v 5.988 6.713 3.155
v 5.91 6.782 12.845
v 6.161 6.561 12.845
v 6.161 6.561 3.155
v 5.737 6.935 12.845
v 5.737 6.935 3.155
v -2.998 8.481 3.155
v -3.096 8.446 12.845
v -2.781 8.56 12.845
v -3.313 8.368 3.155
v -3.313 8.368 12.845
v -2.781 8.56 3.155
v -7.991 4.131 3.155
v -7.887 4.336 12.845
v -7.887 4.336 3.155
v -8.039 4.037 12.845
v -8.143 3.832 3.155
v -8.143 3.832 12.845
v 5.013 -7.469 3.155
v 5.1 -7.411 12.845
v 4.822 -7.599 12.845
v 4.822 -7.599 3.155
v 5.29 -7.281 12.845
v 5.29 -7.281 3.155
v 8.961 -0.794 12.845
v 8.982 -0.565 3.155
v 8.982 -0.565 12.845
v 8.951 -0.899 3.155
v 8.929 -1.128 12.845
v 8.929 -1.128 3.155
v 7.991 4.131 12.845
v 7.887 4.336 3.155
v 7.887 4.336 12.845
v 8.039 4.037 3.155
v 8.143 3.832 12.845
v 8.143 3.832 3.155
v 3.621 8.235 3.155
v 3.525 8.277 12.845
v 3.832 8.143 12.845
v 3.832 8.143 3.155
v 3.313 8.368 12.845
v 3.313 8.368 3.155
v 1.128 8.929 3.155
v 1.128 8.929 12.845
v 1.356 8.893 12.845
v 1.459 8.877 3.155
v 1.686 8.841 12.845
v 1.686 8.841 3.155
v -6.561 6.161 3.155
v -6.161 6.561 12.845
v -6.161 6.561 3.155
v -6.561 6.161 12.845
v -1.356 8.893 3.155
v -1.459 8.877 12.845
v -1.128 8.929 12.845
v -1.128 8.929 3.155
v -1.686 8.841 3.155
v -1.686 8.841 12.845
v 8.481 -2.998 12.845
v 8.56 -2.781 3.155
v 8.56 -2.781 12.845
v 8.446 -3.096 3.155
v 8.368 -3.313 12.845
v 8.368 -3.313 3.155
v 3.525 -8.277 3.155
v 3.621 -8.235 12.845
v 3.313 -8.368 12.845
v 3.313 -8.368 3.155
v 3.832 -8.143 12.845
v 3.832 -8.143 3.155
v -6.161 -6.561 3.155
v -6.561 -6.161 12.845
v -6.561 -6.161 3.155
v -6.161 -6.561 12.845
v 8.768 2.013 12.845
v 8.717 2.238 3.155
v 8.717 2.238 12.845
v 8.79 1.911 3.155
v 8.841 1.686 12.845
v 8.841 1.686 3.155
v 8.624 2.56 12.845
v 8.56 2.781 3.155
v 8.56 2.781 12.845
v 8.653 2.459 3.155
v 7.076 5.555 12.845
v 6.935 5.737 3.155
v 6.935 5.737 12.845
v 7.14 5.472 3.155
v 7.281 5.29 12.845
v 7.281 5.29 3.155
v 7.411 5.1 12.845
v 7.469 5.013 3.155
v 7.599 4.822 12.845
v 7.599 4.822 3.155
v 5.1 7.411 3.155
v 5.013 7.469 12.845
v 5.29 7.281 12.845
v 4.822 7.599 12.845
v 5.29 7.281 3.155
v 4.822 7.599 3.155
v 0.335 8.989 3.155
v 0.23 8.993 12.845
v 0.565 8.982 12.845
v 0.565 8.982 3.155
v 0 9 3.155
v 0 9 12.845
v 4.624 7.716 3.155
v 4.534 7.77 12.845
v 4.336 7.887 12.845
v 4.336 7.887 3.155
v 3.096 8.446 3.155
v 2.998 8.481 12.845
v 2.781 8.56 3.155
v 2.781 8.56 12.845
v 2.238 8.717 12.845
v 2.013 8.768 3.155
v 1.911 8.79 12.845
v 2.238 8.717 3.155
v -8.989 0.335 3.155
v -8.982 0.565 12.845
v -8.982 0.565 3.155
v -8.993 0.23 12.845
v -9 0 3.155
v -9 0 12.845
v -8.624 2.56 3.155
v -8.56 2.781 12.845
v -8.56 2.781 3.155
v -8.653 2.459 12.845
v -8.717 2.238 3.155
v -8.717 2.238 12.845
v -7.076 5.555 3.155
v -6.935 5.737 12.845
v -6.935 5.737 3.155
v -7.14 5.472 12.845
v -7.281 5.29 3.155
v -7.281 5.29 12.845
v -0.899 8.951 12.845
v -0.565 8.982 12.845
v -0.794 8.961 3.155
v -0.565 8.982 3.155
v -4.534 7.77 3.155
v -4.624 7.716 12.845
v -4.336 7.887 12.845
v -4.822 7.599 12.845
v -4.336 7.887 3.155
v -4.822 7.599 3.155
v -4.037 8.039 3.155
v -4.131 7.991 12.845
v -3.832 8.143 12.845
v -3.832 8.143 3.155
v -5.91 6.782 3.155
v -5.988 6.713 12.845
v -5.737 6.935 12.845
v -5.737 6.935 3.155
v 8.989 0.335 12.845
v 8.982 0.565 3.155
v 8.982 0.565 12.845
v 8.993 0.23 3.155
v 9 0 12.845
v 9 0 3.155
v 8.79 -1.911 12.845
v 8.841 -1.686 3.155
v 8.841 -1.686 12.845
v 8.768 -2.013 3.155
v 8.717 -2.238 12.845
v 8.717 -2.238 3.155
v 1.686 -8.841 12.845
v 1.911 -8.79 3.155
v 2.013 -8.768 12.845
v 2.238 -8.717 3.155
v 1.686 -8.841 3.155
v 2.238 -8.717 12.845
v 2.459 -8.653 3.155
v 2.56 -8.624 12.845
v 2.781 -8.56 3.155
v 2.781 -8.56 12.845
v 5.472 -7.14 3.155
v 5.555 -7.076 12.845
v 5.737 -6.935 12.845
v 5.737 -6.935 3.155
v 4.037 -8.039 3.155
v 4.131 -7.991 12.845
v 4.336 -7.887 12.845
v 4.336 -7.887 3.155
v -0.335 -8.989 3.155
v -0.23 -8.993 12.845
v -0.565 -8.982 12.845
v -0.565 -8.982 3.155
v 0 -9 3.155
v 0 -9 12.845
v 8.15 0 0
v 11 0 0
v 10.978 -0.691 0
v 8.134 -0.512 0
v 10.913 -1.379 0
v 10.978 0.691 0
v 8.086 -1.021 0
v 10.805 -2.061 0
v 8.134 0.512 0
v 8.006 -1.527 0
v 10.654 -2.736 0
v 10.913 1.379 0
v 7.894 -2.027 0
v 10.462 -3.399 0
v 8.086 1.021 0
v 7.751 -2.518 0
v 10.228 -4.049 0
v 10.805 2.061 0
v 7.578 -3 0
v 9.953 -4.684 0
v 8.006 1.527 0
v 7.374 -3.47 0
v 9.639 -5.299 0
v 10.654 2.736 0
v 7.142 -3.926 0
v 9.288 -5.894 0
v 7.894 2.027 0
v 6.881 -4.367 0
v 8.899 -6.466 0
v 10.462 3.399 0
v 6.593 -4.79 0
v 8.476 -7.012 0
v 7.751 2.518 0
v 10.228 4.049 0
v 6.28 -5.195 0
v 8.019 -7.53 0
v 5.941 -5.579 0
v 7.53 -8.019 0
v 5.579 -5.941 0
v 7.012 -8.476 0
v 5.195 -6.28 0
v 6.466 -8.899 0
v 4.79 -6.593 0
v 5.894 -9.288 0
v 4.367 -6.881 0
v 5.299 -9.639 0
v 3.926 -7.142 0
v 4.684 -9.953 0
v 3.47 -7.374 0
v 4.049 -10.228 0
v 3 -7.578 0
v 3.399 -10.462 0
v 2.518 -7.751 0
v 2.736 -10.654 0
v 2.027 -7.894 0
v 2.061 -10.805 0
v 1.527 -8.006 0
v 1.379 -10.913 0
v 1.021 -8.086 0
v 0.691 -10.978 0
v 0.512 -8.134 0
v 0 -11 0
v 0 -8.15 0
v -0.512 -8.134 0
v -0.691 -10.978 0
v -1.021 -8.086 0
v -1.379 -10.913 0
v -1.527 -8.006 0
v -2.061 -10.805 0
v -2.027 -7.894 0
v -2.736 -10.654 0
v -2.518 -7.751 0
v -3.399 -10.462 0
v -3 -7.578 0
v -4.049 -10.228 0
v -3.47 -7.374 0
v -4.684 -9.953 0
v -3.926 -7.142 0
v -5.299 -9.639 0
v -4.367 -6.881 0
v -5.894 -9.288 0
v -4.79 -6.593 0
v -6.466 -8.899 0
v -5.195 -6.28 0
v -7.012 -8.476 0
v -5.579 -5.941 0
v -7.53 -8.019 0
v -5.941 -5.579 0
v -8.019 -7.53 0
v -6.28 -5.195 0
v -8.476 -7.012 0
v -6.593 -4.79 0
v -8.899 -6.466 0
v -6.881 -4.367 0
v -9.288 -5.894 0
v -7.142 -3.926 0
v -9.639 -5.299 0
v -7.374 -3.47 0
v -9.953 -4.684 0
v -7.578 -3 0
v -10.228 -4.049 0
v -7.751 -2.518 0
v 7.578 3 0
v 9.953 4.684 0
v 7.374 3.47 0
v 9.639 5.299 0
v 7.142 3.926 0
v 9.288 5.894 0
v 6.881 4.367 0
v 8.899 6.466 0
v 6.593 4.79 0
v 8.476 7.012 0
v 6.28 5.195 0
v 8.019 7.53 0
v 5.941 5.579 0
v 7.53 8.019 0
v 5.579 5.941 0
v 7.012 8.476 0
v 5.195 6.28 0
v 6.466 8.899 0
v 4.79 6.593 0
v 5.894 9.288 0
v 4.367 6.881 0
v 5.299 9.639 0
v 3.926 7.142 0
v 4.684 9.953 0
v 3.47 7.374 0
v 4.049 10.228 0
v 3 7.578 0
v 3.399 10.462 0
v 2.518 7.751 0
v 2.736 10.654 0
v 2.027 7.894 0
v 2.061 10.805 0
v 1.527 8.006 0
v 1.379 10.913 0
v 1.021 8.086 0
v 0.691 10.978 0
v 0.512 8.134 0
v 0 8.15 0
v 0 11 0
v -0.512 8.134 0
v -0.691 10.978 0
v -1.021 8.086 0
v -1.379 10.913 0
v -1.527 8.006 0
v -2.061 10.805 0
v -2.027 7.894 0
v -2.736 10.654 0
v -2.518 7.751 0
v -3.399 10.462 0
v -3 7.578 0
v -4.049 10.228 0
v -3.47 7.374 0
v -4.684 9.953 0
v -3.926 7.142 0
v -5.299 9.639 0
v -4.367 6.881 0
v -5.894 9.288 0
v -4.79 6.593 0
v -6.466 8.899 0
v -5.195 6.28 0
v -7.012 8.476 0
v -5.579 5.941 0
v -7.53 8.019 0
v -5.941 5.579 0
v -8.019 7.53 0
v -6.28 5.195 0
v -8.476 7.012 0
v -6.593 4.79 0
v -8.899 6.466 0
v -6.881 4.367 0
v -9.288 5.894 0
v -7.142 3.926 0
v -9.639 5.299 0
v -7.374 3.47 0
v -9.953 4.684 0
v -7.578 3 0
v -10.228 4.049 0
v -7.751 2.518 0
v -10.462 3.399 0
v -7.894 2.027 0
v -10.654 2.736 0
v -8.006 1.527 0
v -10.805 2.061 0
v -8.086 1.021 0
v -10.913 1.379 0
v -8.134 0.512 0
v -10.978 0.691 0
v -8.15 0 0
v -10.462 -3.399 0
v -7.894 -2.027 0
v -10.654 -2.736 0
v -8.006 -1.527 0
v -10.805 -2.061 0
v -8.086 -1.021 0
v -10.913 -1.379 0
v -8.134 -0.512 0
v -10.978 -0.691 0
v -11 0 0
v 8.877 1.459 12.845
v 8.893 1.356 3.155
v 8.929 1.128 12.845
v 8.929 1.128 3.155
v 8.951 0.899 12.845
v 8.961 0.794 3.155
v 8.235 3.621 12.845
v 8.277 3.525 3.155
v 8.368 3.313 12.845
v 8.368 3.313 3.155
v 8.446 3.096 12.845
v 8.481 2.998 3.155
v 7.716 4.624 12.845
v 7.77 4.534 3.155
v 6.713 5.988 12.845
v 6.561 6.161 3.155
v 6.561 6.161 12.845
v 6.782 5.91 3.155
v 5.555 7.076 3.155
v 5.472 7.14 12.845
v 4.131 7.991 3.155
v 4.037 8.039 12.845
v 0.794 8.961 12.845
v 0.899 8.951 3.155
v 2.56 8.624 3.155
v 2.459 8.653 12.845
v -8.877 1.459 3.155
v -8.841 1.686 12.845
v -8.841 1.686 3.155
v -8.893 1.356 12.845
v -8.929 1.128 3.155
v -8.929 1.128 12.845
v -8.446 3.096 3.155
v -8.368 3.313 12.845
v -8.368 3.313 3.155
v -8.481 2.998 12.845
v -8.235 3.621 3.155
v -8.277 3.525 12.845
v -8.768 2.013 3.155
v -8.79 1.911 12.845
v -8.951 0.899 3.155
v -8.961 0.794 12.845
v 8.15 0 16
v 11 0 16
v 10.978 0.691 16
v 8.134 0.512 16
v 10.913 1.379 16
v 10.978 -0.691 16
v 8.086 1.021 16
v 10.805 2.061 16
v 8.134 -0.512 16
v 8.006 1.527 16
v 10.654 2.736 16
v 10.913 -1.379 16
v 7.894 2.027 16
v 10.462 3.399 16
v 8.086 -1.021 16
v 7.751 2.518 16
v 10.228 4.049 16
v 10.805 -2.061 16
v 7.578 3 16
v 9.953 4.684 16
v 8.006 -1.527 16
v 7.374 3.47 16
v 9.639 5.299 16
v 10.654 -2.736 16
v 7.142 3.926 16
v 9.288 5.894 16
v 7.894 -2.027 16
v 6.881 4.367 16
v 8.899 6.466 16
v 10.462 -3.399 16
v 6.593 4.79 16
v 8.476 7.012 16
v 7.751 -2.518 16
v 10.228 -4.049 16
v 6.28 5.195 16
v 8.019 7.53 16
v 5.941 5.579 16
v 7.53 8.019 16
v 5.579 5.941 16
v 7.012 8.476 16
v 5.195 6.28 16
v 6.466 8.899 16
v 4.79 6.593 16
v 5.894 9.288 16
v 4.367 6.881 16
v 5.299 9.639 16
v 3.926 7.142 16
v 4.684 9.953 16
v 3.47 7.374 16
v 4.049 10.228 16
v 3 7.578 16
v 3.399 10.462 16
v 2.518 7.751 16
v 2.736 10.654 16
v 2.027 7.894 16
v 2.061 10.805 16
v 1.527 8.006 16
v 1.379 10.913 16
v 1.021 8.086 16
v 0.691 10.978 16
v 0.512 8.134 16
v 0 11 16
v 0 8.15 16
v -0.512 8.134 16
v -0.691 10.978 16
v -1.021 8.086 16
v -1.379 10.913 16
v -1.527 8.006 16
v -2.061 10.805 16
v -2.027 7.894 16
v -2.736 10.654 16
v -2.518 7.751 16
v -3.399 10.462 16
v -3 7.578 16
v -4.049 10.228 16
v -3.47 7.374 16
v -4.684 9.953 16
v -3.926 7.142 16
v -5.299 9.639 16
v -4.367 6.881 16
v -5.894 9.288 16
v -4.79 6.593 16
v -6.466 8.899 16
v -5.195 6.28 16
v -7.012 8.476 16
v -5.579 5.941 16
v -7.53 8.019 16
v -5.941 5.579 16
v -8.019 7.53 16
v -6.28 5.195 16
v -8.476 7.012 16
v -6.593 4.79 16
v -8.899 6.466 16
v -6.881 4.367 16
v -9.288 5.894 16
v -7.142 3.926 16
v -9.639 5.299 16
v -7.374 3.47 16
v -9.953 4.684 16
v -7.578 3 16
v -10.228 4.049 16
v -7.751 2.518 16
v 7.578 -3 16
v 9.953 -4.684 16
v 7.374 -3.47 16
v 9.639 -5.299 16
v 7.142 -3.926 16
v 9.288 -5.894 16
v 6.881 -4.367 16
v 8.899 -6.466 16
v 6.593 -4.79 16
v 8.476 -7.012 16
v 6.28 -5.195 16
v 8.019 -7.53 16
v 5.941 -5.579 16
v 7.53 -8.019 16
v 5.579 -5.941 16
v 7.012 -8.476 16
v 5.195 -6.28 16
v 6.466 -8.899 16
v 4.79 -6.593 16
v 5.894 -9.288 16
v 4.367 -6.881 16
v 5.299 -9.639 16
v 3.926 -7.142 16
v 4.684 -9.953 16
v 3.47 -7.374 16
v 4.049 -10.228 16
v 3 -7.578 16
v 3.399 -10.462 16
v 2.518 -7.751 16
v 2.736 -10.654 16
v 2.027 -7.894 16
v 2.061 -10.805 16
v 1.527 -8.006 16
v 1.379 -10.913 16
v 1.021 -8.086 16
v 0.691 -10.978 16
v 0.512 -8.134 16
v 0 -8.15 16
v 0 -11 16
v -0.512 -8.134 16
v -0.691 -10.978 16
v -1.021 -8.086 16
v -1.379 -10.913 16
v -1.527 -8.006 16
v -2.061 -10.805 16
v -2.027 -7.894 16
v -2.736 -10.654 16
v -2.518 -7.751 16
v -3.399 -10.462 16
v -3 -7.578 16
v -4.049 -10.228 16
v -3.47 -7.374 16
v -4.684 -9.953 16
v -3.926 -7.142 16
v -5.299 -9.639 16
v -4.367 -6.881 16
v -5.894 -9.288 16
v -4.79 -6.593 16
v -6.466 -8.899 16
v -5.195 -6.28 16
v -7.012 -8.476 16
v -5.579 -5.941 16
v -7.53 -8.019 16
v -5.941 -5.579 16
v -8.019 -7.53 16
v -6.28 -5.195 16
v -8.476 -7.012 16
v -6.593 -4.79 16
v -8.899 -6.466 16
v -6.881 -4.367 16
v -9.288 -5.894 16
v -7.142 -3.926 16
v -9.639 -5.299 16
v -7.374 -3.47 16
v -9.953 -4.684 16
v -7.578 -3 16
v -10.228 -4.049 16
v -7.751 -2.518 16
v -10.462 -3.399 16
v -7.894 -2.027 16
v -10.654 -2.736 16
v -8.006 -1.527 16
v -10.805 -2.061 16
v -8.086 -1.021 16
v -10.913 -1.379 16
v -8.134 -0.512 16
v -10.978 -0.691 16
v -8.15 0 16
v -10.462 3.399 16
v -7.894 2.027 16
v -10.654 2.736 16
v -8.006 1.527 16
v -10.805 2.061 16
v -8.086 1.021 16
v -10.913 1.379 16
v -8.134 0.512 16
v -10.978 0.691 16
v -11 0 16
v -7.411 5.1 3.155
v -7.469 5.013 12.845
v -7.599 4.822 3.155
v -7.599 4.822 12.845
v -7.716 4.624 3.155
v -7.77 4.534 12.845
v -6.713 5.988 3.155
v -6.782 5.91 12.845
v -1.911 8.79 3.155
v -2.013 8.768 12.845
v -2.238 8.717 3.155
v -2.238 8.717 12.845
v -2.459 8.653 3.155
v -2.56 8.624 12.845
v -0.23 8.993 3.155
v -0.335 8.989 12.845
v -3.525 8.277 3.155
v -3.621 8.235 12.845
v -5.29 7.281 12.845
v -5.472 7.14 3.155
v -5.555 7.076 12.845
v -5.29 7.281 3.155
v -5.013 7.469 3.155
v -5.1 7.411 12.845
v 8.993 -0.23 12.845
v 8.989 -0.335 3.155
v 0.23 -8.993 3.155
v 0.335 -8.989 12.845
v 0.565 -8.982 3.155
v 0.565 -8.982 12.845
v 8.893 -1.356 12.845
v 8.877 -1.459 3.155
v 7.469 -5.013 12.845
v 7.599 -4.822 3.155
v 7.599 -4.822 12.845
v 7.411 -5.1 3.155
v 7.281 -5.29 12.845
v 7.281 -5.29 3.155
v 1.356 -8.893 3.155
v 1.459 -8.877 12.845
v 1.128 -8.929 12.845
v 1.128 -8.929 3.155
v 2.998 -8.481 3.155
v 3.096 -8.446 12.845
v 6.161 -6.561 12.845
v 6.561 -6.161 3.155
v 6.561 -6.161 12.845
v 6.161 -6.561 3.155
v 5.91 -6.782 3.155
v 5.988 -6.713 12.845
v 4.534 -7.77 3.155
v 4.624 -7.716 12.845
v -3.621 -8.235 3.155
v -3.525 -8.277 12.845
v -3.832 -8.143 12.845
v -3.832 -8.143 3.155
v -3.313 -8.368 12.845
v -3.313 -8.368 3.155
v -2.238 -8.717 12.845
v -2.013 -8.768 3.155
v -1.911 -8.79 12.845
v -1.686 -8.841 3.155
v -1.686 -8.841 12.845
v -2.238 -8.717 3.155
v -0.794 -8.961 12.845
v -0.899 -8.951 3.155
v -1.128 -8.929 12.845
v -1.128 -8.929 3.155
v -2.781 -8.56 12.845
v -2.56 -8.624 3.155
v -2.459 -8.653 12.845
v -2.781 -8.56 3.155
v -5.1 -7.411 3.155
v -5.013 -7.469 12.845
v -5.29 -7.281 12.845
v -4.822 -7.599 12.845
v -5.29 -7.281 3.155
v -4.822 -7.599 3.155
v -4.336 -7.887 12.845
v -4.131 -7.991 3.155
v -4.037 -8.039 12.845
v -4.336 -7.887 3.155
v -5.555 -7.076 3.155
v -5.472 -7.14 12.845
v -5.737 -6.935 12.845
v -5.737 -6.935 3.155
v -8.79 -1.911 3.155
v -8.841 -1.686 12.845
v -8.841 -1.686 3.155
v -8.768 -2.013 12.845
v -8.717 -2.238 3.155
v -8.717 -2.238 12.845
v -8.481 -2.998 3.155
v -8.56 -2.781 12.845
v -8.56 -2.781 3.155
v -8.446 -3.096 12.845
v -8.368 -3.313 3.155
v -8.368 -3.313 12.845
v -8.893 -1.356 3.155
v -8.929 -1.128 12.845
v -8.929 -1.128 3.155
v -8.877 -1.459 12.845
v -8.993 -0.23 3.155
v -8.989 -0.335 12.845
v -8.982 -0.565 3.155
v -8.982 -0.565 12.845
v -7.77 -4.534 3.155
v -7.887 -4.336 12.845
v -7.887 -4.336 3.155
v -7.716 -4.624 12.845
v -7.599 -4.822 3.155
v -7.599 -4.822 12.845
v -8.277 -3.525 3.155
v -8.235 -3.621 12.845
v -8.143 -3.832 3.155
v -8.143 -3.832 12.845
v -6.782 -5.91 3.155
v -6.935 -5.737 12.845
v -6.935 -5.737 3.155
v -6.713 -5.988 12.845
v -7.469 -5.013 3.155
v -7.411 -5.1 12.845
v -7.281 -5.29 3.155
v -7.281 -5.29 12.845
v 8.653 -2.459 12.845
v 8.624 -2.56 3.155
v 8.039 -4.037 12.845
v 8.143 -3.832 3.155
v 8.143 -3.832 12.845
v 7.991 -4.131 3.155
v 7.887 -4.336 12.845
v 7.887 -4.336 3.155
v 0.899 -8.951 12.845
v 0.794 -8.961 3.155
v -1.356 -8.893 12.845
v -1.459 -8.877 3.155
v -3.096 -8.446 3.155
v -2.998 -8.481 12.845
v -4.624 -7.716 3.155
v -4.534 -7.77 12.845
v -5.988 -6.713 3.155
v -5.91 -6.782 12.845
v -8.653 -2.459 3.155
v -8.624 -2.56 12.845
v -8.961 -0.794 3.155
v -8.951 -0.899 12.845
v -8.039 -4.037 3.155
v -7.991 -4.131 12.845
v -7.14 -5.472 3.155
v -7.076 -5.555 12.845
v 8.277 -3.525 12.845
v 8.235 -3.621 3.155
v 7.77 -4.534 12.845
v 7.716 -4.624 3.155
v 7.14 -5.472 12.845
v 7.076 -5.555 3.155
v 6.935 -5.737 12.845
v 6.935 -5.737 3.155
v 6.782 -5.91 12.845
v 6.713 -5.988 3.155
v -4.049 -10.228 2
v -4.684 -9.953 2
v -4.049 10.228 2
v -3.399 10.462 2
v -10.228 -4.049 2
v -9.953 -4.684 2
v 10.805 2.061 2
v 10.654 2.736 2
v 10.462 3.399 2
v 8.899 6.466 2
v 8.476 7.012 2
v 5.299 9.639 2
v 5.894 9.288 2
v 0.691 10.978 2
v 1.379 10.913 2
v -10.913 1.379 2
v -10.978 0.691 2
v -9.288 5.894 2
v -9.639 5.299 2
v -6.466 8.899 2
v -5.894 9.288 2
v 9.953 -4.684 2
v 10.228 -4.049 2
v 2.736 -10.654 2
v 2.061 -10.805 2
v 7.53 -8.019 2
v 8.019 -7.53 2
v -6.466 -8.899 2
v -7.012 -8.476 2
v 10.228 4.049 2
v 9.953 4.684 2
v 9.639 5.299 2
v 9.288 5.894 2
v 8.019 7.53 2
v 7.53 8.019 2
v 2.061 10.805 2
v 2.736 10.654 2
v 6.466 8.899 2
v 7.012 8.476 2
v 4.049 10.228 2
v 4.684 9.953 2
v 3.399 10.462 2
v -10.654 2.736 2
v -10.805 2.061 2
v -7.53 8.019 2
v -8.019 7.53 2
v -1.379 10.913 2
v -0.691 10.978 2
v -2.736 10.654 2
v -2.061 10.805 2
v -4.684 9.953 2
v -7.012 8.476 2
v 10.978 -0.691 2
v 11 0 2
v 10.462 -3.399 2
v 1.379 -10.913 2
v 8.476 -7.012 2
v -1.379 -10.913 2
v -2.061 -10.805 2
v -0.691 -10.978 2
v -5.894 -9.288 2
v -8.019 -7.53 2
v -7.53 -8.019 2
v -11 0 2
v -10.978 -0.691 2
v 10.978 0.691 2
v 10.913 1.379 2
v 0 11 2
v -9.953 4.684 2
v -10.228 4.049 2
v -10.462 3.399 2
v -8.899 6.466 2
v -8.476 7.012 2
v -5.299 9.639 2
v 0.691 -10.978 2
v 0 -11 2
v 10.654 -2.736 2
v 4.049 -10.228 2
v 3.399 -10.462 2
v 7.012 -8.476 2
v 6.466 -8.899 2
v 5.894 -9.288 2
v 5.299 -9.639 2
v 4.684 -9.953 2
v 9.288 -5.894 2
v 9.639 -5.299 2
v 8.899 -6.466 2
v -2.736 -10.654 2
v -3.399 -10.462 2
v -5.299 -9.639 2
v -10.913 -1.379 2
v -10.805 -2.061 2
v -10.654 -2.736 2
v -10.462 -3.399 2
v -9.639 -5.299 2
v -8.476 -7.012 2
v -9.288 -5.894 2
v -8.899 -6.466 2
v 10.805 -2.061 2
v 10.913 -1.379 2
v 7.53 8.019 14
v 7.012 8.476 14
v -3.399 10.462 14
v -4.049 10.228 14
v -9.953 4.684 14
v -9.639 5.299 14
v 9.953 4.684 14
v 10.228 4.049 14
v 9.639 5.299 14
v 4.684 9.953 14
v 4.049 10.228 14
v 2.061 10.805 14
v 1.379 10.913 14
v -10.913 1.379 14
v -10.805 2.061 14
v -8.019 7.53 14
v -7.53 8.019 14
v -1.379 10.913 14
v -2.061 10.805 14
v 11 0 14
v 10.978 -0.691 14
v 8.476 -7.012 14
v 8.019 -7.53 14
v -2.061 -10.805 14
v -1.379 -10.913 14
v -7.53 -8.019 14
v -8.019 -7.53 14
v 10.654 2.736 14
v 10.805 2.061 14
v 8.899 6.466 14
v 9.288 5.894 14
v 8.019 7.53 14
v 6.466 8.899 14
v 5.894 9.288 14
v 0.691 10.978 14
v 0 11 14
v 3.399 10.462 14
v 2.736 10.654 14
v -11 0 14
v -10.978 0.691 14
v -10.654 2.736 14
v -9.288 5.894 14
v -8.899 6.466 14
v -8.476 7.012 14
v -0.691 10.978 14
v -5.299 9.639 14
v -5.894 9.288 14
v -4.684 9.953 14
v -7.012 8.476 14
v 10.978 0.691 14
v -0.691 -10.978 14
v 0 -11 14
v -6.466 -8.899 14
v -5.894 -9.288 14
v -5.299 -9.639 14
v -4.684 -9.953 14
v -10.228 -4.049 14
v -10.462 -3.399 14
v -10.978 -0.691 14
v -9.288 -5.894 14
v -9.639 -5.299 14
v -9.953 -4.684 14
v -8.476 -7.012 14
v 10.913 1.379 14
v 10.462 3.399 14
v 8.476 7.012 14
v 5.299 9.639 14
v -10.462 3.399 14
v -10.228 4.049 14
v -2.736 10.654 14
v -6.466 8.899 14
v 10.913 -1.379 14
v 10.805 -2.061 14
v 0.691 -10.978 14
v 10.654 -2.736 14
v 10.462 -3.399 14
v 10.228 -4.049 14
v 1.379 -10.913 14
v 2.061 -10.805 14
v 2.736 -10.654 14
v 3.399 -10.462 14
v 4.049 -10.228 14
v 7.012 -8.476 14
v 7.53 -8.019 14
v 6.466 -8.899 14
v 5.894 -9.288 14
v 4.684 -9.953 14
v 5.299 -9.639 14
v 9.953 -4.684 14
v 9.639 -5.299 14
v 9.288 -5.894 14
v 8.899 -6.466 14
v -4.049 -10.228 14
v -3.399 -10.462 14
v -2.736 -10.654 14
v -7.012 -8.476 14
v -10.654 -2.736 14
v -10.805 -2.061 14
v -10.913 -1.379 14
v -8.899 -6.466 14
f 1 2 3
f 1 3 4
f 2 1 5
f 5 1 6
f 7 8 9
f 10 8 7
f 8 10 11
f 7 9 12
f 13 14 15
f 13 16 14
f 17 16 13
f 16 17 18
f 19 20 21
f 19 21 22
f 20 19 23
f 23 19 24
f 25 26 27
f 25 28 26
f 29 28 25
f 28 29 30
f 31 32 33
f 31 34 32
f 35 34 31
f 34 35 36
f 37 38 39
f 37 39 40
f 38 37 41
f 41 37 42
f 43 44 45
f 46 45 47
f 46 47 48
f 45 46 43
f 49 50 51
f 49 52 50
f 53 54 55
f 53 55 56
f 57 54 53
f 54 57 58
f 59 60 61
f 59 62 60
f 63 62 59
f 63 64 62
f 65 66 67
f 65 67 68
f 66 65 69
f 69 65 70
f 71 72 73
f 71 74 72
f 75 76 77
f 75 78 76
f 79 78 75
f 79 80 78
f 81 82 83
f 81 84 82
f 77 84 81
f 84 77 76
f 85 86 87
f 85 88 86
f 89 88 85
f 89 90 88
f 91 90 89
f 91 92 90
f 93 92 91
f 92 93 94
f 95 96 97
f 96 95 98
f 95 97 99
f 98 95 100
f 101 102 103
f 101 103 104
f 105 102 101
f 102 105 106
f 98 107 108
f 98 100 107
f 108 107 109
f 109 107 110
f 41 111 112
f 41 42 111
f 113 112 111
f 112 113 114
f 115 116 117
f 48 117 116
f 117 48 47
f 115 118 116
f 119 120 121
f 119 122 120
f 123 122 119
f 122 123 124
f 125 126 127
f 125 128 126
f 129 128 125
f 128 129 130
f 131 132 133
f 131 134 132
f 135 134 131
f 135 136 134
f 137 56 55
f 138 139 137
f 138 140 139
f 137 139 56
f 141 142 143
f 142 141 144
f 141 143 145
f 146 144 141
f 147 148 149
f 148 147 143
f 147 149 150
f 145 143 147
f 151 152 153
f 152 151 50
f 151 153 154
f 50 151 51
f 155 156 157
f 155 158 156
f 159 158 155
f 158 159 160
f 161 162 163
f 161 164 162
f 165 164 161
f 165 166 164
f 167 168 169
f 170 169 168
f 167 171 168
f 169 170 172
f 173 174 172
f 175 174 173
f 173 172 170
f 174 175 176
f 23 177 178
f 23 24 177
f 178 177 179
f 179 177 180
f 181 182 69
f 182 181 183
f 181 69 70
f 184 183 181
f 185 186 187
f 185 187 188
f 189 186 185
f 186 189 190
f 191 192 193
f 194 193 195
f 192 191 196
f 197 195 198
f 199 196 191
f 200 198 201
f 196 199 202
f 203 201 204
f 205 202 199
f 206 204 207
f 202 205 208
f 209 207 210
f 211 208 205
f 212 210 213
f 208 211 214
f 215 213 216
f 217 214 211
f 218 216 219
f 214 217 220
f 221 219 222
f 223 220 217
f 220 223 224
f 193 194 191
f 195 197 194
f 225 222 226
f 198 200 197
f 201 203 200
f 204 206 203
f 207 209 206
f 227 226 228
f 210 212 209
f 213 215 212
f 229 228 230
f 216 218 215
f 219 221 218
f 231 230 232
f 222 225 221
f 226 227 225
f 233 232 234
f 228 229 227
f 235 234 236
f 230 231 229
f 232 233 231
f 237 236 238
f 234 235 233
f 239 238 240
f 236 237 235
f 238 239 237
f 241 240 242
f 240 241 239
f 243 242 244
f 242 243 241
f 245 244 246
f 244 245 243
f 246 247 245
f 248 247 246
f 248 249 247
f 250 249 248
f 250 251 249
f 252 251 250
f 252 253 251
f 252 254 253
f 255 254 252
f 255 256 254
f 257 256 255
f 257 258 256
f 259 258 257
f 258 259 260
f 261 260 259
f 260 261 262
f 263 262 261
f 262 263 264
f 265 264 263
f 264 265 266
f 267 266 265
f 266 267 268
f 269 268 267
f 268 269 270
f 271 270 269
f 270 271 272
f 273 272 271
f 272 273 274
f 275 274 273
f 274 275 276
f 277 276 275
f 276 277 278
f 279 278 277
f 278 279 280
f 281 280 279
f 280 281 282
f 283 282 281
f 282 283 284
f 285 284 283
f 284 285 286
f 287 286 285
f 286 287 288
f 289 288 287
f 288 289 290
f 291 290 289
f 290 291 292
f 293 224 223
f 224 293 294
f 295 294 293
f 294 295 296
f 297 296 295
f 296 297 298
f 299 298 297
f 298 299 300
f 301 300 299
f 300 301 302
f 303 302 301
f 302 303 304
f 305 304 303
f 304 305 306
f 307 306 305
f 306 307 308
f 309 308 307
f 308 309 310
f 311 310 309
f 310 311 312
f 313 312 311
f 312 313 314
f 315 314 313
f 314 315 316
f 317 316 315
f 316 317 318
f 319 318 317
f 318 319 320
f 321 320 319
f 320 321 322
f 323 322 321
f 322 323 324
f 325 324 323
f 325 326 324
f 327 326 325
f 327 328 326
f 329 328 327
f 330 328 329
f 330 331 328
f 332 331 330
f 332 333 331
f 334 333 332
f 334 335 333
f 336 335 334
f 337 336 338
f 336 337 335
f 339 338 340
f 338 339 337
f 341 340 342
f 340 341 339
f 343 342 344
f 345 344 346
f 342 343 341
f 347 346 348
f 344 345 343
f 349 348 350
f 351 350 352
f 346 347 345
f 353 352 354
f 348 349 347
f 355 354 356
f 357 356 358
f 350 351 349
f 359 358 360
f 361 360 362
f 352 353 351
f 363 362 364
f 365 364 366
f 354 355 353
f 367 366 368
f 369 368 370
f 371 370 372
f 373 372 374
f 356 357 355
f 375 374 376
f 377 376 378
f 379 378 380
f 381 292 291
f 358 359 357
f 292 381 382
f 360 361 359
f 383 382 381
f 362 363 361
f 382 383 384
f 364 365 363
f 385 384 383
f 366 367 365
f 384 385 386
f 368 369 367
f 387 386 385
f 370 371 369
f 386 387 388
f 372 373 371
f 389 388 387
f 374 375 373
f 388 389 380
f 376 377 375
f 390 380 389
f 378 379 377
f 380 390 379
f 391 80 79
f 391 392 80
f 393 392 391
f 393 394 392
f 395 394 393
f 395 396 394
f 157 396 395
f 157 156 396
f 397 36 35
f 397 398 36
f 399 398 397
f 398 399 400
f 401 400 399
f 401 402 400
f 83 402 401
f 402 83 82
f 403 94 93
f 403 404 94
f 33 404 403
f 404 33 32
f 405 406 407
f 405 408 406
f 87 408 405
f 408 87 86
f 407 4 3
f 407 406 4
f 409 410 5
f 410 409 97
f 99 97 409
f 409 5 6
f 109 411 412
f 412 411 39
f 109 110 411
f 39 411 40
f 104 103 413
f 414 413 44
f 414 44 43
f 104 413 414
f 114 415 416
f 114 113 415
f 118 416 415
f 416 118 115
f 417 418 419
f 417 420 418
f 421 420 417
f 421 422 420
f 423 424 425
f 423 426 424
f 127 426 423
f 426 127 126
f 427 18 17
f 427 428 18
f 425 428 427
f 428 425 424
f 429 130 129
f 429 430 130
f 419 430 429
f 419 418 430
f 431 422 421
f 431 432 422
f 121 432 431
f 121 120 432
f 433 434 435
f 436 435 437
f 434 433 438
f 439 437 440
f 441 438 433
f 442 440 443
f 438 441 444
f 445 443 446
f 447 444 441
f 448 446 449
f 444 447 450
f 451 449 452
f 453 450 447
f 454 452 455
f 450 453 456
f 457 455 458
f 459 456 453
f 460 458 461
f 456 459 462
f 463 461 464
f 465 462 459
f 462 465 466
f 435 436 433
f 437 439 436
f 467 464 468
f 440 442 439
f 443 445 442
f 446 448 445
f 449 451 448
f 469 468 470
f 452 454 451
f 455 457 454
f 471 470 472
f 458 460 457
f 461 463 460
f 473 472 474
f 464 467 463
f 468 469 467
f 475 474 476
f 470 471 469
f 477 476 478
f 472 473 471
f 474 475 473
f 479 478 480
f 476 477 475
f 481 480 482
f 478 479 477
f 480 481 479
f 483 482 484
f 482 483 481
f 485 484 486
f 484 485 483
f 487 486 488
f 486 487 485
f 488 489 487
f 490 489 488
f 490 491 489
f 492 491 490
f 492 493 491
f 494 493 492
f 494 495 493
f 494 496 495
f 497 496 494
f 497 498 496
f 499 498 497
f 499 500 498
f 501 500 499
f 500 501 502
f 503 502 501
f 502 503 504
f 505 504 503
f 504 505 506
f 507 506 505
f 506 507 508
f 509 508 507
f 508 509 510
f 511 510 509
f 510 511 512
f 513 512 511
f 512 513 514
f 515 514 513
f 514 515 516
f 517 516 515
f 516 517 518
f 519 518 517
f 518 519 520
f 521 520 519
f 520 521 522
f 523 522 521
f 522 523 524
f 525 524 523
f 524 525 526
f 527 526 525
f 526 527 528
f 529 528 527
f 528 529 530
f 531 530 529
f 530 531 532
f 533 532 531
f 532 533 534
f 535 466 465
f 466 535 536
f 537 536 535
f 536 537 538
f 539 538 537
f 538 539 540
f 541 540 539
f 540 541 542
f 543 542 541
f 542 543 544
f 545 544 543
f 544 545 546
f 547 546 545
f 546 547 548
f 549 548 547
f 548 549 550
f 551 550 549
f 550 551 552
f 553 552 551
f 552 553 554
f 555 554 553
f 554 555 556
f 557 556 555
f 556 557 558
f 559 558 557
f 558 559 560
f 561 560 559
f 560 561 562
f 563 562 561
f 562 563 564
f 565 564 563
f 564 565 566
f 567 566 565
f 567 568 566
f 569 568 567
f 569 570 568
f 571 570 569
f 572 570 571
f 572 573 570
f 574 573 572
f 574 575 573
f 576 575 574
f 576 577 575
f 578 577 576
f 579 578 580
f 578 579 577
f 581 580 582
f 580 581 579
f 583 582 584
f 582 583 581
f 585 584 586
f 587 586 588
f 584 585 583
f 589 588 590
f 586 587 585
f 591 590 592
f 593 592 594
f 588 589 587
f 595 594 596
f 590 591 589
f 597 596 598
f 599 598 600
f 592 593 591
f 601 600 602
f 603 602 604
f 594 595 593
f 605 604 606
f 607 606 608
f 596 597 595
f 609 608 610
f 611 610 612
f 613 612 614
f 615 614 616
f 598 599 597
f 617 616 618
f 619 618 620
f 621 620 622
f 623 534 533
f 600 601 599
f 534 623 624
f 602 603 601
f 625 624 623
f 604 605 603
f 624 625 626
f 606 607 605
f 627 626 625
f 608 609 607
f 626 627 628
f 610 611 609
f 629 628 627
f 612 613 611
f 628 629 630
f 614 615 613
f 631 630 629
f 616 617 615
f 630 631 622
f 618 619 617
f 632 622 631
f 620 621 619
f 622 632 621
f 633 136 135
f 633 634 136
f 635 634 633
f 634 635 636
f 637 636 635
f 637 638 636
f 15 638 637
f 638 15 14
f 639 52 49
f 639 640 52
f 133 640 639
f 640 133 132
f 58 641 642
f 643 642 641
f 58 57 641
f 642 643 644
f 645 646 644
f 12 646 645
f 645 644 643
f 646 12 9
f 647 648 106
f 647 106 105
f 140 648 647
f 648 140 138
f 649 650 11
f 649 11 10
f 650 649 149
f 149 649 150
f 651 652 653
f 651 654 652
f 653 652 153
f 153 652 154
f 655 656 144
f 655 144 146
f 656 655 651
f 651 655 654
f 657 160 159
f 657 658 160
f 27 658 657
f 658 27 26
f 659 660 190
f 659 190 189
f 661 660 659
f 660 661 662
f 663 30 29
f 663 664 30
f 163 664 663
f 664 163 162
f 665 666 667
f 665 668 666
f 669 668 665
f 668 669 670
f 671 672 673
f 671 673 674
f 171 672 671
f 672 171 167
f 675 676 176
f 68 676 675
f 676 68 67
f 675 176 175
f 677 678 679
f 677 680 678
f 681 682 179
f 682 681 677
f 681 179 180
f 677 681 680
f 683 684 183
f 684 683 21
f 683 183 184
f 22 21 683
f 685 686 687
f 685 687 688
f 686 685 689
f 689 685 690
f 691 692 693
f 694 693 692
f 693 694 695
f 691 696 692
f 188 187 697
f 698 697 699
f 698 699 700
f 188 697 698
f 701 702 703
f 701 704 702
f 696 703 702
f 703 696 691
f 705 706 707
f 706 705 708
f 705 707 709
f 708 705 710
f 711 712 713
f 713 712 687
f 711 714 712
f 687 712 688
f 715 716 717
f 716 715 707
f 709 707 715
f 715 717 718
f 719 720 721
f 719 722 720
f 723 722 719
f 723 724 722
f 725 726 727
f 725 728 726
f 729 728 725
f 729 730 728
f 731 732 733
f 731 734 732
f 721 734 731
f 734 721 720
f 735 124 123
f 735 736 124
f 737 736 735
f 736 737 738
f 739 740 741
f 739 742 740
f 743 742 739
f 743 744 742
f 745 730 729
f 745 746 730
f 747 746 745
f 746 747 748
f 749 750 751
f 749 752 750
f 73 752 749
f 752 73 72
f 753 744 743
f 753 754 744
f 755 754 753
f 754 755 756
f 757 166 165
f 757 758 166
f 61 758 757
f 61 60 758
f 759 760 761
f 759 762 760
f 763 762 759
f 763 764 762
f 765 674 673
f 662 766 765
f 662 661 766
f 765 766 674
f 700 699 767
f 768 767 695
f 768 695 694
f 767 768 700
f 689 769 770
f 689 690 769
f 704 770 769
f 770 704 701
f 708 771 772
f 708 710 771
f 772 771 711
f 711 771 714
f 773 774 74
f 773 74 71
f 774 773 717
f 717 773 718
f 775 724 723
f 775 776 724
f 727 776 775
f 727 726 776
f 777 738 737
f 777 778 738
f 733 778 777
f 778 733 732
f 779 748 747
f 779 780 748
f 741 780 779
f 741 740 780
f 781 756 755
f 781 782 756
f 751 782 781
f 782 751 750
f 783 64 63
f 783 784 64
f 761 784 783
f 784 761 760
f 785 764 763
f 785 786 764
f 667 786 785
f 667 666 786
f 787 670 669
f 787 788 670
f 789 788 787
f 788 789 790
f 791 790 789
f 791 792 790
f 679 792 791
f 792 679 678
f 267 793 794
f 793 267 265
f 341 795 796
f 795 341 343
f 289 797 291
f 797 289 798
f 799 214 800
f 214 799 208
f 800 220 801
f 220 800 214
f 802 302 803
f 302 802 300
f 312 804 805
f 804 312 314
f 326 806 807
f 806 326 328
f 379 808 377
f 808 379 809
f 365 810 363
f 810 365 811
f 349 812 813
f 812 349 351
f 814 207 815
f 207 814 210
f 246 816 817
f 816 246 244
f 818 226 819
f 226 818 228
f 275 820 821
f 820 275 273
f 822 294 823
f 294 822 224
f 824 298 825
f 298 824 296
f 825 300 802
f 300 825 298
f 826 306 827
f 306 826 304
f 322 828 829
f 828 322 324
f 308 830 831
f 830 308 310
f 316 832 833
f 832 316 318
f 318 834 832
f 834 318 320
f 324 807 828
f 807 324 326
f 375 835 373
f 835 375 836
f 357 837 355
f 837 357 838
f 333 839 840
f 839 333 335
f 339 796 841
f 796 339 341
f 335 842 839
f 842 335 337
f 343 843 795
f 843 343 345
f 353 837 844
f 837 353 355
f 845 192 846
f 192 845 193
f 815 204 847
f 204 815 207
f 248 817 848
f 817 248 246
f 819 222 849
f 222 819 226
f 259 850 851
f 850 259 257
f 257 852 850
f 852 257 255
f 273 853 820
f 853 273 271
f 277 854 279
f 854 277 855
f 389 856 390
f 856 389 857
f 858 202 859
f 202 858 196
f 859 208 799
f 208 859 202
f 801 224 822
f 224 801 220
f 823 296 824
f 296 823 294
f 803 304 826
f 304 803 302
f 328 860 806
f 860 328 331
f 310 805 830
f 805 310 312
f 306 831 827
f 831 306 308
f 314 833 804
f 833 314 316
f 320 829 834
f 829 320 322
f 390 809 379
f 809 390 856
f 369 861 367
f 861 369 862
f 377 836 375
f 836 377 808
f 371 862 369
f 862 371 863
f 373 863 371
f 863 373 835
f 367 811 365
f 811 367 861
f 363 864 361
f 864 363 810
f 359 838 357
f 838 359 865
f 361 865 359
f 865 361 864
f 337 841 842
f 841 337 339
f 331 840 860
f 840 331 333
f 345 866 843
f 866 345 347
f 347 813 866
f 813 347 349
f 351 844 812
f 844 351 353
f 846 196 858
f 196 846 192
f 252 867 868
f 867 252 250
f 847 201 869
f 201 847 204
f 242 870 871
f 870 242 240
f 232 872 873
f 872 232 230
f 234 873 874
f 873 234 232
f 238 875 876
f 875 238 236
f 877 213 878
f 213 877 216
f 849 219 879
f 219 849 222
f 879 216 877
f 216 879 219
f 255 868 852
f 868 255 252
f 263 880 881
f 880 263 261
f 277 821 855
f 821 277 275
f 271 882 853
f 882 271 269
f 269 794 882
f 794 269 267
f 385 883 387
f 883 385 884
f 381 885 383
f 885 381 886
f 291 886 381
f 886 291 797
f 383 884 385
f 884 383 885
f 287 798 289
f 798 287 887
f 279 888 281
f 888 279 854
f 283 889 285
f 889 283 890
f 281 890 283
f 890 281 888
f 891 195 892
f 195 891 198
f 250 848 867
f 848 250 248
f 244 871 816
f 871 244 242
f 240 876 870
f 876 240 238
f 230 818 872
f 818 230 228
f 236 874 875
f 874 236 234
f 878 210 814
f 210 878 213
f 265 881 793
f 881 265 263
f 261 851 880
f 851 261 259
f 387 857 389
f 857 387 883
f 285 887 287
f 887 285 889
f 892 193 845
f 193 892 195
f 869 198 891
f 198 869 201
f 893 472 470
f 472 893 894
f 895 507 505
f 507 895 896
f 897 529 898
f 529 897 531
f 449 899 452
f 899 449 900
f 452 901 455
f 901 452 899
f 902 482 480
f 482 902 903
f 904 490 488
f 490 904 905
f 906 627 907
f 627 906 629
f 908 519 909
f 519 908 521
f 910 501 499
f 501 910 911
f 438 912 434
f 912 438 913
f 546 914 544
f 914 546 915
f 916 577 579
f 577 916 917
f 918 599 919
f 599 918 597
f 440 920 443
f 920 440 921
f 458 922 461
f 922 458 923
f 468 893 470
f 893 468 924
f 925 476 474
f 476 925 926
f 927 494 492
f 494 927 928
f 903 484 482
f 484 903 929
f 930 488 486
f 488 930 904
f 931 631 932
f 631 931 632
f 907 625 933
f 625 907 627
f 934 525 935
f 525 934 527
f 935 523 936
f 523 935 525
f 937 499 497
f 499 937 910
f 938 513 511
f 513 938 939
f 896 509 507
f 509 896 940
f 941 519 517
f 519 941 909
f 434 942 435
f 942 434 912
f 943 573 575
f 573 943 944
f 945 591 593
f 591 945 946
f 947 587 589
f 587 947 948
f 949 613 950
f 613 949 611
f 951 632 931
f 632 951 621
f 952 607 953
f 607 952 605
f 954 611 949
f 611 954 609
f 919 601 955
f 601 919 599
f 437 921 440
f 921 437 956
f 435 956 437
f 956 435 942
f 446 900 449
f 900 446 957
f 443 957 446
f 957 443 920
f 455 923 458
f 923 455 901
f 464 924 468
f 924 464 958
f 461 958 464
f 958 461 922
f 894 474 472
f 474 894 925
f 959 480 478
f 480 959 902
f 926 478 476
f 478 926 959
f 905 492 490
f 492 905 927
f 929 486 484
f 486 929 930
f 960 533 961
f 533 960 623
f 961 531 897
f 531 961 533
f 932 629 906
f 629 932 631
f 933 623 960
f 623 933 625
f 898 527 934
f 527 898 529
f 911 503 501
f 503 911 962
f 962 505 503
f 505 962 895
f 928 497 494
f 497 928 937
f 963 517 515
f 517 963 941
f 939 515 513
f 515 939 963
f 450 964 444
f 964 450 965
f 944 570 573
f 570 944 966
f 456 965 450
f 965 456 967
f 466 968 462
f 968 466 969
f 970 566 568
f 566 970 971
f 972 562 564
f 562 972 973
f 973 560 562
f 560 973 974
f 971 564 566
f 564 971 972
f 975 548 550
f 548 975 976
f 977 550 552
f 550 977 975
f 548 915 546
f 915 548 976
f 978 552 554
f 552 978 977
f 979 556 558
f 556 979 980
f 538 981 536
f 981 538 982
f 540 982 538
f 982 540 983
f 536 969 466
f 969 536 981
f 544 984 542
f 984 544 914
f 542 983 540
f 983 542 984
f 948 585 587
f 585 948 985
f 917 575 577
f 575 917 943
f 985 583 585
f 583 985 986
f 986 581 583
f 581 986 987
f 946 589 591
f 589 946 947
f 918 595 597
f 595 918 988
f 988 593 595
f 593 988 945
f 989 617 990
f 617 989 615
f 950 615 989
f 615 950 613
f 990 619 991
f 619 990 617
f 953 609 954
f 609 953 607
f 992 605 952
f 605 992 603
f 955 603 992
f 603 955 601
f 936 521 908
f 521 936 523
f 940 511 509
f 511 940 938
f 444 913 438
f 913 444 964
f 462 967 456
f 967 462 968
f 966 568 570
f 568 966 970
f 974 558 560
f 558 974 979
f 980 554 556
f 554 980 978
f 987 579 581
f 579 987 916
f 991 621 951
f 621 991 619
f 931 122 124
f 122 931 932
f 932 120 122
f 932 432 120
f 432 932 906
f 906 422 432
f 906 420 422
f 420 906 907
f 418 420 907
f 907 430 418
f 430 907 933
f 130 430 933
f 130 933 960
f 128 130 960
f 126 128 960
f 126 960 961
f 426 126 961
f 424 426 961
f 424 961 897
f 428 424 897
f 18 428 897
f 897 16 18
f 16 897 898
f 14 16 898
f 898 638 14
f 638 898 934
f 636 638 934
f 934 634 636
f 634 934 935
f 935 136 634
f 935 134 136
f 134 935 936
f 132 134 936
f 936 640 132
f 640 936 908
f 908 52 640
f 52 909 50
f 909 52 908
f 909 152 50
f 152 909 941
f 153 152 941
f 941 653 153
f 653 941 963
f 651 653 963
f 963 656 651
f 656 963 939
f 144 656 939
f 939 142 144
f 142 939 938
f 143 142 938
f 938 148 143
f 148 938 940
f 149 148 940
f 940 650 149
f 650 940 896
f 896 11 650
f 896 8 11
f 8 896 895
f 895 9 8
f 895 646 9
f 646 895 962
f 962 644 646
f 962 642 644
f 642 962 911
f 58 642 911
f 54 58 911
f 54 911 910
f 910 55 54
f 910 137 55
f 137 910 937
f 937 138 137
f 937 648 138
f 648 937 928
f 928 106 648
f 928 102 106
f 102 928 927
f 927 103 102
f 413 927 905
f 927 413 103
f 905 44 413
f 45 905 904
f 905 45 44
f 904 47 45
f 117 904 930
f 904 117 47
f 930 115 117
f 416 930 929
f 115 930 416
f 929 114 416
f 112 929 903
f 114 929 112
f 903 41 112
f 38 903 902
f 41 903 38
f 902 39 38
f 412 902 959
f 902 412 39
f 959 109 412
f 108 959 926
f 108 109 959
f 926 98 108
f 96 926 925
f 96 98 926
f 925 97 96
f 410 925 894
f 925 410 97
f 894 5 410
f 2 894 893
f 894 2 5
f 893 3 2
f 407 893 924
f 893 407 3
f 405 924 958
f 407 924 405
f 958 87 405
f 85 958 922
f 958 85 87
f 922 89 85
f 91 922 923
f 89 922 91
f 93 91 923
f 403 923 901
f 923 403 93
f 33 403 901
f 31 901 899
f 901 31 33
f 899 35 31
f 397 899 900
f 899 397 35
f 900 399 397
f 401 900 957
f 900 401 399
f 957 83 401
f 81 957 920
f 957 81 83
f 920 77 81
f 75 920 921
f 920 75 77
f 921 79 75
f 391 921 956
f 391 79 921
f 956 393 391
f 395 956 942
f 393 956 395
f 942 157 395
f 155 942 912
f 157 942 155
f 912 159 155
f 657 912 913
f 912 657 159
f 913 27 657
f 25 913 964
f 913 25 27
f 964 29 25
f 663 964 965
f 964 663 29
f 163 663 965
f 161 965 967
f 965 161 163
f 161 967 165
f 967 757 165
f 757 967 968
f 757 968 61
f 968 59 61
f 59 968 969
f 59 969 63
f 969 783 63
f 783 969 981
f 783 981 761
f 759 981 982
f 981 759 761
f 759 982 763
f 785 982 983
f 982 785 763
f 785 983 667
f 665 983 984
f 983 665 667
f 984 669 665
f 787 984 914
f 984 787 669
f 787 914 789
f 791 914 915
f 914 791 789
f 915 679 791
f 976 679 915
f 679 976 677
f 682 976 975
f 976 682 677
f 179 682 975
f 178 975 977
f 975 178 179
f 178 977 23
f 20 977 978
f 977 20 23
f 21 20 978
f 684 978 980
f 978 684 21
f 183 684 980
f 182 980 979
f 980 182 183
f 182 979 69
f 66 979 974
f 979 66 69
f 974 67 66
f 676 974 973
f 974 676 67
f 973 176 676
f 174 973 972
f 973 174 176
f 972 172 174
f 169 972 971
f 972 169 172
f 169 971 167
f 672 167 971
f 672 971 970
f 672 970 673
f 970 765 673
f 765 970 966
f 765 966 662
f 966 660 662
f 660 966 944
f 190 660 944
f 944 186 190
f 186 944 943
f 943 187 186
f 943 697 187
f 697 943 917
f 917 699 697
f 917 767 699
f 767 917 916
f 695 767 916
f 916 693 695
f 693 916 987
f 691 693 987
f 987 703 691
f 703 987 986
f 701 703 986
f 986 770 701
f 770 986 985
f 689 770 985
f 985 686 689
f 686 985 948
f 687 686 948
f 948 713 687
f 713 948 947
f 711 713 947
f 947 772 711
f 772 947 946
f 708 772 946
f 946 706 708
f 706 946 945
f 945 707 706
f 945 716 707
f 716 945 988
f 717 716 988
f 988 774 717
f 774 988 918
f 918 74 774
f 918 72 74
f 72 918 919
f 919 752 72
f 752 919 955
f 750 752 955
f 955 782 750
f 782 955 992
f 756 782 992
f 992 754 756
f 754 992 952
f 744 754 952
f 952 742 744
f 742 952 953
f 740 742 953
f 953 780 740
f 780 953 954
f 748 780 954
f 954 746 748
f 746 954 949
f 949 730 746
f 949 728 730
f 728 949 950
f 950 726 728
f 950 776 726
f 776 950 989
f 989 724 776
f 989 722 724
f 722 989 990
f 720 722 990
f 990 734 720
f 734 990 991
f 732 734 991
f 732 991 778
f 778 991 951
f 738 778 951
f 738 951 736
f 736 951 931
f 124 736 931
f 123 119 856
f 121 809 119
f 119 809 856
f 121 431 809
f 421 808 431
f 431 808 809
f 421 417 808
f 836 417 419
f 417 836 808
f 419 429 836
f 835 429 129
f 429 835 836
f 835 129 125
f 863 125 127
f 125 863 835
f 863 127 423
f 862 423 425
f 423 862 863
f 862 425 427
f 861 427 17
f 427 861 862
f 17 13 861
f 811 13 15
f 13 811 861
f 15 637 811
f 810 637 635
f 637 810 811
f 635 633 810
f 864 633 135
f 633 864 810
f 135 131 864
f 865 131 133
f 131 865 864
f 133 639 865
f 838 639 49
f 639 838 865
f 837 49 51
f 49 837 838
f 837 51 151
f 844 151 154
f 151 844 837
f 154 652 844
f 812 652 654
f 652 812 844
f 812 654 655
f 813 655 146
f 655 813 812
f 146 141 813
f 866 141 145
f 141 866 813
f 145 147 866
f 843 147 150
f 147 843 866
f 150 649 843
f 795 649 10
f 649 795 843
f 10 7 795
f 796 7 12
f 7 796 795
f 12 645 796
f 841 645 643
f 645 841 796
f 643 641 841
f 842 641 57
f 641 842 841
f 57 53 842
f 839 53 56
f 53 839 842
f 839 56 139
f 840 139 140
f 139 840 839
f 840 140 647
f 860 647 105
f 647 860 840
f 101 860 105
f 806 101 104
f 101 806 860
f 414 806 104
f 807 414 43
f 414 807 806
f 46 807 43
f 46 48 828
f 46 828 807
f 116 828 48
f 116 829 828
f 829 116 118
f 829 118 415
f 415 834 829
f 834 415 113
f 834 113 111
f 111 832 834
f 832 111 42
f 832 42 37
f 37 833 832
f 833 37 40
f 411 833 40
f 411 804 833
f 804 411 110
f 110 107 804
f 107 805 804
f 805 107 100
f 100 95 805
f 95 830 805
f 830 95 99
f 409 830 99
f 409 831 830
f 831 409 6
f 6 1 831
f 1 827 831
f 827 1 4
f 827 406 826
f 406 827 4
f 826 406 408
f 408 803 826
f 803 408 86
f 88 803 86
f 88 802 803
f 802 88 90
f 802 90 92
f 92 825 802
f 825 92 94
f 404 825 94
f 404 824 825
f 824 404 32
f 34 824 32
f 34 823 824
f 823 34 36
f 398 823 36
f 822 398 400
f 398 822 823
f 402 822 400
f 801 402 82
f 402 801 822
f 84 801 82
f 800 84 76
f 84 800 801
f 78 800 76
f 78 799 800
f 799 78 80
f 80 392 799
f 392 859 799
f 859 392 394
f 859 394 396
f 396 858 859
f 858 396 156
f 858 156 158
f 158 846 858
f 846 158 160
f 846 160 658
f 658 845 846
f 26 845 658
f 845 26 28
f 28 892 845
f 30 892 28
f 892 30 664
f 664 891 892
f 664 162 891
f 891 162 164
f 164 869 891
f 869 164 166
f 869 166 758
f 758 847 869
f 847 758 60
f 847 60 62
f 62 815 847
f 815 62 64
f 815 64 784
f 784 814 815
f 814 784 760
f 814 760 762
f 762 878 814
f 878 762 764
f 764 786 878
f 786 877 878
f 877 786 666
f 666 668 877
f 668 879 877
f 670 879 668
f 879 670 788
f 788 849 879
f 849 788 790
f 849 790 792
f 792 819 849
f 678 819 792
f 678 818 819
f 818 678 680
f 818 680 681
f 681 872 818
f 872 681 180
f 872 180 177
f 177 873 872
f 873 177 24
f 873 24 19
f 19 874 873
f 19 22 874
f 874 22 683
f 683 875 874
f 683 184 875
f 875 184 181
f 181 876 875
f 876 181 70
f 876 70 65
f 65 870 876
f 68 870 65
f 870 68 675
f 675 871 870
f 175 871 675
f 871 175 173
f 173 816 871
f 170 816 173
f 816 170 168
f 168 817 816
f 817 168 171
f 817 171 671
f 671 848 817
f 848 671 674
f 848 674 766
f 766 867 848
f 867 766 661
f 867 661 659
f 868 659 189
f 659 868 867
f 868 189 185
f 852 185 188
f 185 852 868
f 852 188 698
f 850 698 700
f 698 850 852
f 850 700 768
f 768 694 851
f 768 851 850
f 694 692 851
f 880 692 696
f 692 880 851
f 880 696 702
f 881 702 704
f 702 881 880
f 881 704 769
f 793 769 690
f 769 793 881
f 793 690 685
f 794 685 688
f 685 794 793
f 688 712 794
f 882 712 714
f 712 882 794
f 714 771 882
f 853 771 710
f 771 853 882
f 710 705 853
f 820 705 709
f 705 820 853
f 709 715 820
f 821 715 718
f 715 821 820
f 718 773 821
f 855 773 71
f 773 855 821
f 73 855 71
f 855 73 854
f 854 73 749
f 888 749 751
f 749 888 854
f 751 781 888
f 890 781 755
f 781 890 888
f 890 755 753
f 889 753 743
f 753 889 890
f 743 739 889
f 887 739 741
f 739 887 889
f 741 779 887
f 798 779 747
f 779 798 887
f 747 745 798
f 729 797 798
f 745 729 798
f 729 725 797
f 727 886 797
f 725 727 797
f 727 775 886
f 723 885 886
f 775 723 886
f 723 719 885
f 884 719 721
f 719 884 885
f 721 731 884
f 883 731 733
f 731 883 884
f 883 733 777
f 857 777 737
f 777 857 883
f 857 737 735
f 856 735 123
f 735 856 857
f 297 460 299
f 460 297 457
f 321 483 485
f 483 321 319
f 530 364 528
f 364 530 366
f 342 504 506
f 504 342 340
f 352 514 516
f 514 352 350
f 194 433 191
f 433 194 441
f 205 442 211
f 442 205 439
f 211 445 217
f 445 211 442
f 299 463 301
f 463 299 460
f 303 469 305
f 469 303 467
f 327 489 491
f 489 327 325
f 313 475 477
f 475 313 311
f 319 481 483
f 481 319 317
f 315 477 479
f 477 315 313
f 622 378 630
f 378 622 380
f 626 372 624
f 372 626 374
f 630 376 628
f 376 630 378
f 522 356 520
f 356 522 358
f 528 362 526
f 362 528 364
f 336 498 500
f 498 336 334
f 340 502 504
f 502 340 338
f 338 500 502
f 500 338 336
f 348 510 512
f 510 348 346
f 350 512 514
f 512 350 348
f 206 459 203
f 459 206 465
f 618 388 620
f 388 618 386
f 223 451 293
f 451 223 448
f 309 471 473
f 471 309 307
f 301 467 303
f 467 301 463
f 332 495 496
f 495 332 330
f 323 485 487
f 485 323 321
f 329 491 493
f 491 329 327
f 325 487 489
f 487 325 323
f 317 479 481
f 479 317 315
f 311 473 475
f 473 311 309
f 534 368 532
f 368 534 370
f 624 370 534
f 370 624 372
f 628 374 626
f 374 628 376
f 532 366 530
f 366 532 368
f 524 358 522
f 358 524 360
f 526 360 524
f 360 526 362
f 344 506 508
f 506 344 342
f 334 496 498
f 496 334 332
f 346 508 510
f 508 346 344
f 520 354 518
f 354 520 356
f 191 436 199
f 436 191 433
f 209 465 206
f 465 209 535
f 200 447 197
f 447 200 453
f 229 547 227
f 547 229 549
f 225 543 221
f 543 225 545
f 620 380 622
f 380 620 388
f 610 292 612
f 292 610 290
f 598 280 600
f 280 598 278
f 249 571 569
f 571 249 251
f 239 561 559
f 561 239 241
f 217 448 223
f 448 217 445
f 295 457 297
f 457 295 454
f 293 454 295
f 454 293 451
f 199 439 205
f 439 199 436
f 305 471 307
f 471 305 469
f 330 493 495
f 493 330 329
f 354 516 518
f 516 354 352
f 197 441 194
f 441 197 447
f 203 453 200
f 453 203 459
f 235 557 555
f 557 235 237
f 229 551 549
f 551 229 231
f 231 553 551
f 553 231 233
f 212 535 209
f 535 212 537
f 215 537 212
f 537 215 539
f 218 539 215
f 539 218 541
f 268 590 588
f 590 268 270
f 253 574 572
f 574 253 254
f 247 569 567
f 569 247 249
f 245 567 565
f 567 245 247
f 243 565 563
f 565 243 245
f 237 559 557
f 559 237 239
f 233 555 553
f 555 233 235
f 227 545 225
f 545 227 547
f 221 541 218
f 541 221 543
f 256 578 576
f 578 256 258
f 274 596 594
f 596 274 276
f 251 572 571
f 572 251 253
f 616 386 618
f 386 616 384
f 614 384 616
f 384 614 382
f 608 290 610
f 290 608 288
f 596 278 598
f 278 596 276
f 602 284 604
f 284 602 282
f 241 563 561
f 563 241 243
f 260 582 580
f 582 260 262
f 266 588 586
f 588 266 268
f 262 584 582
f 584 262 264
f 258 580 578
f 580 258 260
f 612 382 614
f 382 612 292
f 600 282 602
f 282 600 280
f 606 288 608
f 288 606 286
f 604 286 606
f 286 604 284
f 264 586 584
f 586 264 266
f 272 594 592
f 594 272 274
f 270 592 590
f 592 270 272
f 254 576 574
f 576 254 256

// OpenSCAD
$fn = 100;

$idler_od=22;
$idler_id=18;
$idler_bored=16.3;
$idler_shell_depth=2;

$idler_center_depth=8;

$bearing_od=16.3;
$bearing_h=5;

module Bearing() {
    cylinder(d=$bearing_od,h=$bearing_h);
}

module IdlerBorder() {
    rotate_extrude(convexity = 10, $fn = 100)
        translate([$idler_od/2-$idler_shell_depth, 0])
            circle(r = 2, $fn = 3);
}

module Idler() {
    difference() {
        union () {
            //center block
            cylinder(d=$idler_id,h =$idler_center_depth+4*$idler_shell_depth);
            
            //outer shell bottom
            cylinder(d=$idler_od,h=$idler_shell_depth);
            
            //outer shell top
            translate([0,0,$idler_center_depth+3*$idler_shell_depth]) {
                cylinder(d=$idler_od,h=$idler_shell_depth);
            }
            
            // smoother top
            translate([0,0,$idler_center_depth+3*$idler_shell_depth]) {
                IdlerBorder();
            }
            
            // smoother bottom
            translate([0,0,$idler_shell_depth]) {
                IdlerBorder();
            }
        }
        union () {
            // bore
            translate([0,0,-0.1]) {
                $thickness = $idler_shell_depth*4 + $idler_center_depth+0.2;
                cylinder(d=$idler_bored,h=$thickness);
            }
            // bearing cutout
            $bh = 2*$idler_shell_depth + $idler_center_depth/2 - $bearing_h/2;
            translate([0,0,$bh]) {
                Bearing();
            }
        }
    }
}

Idler();
